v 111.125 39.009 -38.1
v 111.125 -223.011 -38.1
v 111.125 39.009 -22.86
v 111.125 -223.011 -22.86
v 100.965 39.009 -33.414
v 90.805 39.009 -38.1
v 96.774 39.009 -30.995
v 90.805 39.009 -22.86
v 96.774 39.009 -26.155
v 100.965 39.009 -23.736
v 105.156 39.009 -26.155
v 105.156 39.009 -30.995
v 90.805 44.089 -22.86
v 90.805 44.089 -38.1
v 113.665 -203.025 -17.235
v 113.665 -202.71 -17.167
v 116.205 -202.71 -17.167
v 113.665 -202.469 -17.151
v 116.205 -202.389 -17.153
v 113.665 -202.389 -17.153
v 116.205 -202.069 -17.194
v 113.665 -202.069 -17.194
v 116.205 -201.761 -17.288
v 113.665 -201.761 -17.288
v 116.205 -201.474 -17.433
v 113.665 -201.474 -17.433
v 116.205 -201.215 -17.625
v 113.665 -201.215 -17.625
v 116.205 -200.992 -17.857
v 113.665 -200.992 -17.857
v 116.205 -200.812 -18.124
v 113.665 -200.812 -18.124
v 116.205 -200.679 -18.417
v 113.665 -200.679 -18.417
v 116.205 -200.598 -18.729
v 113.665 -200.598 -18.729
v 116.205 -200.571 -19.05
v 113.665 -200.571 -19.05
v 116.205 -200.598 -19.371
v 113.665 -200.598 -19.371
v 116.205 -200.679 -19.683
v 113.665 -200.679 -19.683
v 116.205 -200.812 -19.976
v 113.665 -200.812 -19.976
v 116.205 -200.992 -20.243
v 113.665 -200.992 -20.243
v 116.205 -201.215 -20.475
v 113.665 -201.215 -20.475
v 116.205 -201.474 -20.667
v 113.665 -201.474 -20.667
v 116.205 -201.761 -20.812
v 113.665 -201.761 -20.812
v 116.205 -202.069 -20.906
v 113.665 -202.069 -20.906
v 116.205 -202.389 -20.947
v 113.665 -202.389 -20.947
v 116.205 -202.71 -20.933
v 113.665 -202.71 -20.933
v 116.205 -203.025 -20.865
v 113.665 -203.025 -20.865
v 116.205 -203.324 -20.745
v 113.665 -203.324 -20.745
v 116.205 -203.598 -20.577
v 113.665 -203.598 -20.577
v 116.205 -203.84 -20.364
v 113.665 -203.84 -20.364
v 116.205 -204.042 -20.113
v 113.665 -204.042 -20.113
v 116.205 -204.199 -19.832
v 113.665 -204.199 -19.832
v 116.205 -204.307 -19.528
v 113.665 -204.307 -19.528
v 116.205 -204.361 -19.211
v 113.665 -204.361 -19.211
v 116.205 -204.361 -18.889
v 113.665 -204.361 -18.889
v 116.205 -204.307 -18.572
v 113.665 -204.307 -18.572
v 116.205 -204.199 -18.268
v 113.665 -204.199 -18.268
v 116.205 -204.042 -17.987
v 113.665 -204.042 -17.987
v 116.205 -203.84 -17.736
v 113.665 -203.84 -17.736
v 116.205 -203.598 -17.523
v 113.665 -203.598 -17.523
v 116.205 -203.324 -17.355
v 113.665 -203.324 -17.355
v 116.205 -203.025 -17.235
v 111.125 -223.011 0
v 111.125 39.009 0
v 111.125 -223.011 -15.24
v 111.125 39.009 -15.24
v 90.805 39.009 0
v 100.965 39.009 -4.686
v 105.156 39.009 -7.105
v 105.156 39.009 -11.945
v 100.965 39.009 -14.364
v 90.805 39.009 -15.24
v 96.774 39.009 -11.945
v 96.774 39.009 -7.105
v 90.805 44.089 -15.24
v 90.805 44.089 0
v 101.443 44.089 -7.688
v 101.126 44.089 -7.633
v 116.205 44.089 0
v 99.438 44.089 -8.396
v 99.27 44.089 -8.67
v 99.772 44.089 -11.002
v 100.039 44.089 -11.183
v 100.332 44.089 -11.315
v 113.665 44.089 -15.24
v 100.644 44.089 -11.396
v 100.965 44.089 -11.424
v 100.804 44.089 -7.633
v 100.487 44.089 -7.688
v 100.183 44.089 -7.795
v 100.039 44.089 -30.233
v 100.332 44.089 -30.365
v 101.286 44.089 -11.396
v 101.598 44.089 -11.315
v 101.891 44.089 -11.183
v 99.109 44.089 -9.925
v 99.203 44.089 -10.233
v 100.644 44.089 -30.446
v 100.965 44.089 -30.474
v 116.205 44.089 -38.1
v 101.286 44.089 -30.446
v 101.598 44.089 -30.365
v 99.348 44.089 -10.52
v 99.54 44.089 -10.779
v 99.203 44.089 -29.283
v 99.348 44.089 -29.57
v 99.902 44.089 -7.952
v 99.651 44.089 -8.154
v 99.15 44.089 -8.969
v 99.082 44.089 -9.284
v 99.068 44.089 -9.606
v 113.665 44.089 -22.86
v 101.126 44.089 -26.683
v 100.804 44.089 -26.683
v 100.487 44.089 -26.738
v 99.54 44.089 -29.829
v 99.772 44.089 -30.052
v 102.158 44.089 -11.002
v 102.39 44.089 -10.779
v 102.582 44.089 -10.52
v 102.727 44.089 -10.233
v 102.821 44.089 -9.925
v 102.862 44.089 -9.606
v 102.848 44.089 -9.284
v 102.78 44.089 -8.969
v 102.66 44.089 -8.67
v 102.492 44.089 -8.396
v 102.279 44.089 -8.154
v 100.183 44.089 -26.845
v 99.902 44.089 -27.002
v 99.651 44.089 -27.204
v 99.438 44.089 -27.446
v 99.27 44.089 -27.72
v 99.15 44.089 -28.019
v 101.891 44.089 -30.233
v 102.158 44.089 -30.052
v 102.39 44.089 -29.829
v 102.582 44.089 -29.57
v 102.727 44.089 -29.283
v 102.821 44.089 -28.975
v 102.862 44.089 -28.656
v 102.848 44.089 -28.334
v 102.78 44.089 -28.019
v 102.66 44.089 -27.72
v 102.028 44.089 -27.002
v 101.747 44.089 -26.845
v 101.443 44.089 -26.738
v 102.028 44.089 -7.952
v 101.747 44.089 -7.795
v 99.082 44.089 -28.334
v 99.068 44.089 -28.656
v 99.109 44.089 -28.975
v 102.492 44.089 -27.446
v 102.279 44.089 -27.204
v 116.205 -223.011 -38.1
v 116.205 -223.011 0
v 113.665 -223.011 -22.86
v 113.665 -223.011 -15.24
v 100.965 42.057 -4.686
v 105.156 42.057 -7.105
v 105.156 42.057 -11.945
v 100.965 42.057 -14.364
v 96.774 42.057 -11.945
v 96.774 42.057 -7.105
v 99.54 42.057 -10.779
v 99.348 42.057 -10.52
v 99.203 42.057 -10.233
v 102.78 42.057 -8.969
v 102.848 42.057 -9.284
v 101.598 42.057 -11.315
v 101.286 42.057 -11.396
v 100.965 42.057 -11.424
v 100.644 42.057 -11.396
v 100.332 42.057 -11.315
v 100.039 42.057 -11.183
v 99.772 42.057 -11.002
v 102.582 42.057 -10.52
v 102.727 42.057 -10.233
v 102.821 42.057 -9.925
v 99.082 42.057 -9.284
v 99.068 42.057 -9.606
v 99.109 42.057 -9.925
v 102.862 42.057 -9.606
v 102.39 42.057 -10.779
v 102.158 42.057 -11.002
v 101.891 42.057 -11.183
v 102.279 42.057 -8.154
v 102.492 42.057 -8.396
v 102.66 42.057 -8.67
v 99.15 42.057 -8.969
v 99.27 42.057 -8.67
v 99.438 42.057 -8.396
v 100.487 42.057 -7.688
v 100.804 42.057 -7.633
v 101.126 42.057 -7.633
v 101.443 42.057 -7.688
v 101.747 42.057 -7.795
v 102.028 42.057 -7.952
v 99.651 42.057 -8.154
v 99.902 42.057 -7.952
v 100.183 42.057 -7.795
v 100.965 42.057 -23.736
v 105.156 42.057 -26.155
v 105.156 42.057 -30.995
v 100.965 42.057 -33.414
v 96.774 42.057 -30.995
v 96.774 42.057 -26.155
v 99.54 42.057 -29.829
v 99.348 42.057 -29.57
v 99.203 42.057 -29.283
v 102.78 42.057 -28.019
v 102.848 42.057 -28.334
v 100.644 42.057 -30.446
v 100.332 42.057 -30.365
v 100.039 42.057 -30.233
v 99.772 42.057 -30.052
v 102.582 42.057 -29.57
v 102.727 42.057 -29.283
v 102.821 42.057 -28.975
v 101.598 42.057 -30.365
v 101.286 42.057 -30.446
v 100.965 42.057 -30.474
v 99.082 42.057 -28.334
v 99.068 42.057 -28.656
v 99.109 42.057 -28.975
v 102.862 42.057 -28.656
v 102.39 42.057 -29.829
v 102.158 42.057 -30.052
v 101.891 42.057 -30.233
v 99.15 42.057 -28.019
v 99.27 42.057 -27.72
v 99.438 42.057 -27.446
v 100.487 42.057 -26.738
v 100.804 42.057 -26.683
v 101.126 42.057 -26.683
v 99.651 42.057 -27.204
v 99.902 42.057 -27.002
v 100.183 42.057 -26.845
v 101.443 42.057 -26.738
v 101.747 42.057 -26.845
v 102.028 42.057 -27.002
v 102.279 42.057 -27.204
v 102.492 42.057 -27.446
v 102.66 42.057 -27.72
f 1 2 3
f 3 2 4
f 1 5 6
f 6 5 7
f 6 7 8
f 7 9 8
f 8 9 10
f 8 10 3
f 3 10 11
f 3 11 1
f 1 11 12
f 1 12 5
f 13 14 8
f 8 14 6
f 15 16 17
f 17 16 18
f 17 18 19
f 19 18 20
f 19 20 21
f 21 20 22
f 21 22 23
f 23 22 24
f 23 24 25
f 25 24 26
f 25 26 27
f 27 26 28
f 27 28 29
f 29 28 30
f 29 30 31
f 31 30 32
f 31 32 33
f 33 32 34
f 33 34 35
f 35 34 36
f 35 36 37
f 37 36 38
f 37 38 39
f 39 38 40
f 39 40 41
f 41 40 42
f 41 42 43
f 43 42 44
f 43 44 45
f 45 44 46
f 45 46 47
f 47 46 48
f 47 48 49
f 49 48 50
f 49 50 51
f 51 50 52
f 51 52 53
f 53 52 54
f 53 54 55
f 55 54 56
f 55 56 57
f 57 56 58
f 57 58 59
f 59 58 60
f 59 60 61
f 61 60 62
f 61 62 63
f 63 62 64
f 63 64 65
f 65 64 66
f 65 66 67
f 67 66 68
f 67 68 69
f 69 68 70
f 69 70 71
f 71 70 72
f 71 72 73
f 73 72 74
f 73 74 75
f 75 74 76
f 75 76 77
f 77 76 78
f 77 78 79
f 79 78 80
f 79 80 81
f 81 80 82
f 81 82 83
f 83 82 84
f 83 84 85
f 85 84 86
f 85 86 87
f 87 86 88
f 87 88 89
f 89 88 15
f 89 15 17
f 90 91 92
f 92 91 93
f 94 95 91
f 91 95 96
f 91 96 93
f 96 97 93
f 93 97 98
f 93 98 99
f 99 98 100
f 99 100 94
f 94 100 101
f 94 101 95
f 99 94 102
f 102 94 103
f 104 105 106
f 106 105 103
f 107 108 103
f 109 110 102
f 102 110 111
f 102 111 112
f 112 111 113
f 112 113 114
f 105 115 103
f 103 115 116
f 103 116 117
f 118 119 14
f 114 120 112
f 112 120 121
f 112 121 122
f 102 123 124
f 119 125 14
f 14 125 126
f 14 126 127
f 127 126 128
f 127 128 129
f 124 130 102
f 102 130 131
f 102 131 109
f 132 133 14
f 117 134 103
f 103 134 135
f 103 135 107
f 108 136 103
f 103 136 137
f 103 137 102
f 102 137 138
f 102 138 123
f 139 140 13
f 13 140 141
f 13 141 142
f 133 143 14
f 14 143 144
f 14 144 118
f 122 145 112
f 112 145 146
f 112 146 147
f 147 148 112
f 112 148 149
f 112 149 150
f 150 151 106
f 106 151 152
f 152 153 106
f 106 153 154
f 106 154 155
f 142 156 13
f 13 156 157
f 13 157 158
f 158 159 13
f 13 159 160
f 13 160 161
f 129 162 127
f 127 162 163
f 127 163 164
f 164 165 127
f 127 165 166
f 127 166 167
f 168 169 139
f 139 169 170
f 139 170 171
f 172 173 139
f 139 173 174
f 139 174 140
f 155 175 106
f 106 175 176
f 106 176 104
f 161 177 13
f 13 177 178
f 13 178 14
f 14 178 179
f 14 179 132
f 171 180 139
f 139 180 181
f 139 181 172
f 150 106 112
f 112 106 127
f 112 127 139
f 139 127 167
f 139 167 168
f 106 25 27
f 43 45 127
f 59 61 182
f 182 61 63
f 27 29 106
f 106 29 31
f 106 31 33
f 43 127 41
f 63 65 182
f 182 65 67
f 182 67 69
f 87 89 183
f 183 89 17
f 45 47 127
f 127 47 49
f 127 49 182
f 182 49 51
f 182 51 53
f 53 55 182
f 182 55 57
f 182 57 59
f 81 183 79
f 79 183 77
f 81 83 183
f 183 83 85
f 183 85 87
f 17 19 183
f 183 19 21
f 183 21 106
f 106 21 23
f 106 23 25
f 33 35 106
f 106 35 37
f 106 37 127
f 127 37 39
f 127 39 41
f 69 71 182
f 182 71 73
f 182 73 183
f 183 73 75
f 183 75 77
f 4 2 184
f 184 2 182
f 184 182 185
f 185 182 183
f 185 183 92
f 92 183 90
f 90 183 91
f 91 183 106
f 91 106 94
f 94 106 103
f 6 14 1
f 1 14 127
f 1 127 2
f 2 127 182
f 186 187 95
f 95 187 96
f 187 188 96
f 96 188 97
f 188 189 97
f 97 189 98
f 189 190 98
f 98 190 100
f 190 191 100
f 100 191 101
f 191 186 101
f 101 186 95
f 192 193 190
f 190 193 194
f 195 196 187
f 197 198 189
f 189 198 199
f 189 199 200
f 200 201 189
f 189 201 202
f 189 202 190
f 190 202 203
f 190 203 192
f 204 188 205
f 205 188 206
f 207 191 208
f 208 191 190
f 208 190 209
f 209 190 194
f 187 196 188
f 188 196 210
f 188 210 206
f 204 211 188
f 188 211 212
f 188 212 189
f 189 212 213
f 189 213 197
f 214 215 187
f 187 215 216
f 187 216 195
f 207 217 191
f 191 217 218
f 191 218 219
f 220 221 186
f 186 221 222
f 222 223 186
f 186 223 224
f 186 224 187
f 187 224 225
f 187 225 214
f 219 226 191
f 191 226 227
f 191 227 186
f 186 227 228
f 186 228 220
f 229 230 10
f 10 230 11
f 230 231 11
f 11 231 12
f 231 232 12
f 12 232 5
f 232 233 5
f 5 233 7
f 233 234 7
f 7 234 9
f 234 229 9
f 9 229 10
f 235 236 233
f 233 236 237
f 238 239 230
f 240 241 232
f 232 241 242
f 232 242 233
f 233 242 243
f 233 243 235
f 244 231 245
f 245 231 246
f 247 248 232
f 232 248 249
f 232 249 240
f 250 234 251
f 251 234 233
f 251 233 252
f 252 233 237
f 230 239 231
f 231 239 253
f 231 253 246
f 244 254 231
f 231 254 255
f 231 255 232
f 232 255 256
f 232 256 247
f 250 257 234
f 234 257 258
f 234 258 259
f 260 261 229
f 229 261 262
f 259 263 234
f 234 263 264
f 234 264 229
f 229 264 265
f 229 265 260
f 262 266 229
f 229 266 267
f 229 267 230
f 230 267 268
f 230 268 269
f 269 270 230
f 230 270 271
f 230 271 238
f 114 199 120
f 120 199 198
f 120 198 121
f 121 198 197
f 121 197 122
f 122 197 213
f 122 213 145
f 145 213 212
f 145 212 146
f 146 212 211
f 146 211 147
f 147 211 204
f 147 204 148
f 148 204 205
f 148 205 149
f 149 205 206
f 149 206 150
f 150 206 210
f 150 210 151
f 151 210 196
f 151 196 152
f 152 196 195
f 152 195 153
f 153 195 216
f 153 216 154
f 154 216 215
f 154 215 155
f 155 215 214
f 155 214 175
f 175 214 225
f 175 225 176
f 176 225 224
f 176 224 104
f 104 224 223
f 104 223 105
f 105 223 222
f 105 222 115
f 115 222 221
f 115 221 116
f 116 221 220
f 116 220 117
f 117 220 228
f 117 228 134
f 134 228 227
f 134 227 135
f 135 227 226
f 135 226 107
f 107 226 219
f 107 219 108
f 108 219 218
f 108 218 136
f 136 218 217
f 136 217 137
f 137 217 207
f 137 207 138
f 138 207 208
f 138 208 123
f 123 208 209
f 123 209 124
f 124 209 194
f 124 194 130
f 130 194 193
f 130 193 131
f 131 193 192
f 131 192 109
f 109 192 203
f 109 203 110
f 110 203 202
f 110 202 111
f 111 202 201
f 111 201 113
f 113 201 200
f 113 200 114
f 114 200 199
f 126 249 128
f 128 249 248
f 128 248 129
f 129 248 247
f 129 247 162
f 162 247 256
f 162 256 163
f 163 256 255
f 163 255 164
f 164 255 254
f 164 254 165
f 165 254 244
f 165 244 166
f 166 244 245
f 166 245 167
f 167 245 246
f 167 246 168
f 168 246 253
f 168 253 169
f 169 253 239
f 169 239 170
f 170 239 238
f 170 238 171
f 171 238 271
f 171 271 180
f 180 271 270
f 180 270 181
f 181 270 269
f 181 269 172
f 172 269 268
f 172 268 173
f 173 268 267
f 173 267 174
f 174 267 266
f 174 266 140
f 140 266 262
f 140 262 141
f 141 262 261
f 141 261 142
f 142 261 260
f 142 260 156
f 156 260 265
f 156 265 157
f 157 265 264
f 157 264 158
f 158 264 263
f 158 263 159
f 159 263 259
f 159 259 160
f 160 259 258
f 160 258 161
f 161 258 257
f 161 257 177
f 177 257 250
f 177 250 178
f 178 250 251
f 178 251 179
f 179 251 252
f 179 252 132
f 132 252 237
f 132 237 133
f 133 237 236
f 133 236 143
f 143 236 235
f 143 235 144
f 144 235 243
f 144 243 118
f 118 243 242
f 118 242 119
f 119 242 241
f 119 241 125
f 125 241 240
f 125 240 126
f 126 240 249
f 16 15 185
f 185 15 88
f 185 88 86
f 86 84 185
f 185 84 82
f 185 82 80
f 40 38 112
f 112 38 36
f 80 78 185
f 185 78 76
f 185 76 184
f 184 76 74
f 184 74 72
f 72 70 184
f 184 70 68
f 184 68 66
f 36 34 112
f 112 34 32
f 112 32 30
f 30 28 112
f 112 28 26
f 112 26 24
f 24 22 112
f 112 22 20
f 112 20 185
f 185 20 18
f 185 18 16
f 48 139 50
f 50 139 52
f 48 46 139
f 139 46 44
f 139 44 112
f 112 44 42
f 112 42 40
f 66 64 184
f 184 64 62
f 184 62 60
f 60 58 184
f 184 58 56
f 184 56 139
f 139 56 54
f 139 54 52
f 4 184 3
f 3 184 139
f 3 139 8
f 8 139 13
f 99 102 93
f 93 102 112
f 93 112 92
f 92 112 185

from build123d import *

# Parameters (mm, degrees)
EXTRU_MINCE1_DEPTH      = 38.1
ESQUISSE2_R             = 1.89865
ENL_V_MAT_EXTRU_1_DEPTH = 228.663979486
ENL_V_MAT_EXTRU_2_DEPTH = 3.048
D_GAGEMENT_61_D         = 3.7973
ESQUISSE6_W             = 7.62
ESQUISSE6_H             = 267.100210441
ENL_V_MAT_EXTRU_3_DEPTH = 22.86


with BuildPart() as part:
    # Esquisse1 → Extru.-Mince1 (new body)
    with BuildSketch(Plane.XY):
        Polygon((90.805, 44.088736397), (116.205, 44.088736397), (116.205, -223.011474044), (111.125, -223.011474044), (111.125, 39.008736397), (90.805, 39.008736397), align=None)
    extrude(amount=-EXTRU_MINCE1_DEPTH)

    # Esquisse2 → Enlèv. mat.-Extru.1 (cut, through all)
    with BuildSketch(Plane(origin=(116.205, 0, 0), x_dir=(0, 0, -1), z_dir=(1, 0, 0))):
        with Locations(Location((19.05, -202.469224044, 0), (0, 0, 90))):
            Circle(ESQUISSE2_R)
    extrude(amount=-ENL_V_MAT_EXTRU_1_DEPTH, mode=Mode.SUBTRACT)

    # Esquisse3 → Enlèv. mat.-Extru.2 (cut)
    with BuildSketch(Plane.XZ.offset(-39.008736397)):
        Polygon((100.965, -23.735650044), (96.774, -26.155325022), (96.774, -30.994674978), (100.965, -33.414349956), (105.156, -30.994674978), (105.156, -26.155325022), align=None)
        Polygon((100.965, -4.685650044), (96.774, -7.105325022), (96.774, -11.944674978), (100.965, -14.364349956), (105.156, -11.944674978), (105.156, -7.105325022), align=None)
    extrude(amount=-ENL_V_MAT_EXTRU_2_DEPTH, mode=Mode.SUBTRACT)

    # Dégagement #61 (through all)
    with Locations(Plane(origin=(0, 42.056736397, 0), x_dir=(-1, 0, 0), z_dir=(0, -1, 0))):
        with Locations((-100.965, 28.575), (-100.965, 9.525)):
            Hole(D_GAGEMENT_61_D / 2)

    # Esquisse6 → Enlèv. mat.-Extru.3 (cut)
    with BuildSketch(Plane.ZY.offset(-90.805)):
        with Locations((-19.05, -89.461368824)):
            Rectangle(ESQUISSE6_W, ESQUISSE6_H)
    extrude(amount=-ENL_V_MAT_EXTRU_3_DEPTH, mode=Mode.SUBTRACT)


solid = part.part
